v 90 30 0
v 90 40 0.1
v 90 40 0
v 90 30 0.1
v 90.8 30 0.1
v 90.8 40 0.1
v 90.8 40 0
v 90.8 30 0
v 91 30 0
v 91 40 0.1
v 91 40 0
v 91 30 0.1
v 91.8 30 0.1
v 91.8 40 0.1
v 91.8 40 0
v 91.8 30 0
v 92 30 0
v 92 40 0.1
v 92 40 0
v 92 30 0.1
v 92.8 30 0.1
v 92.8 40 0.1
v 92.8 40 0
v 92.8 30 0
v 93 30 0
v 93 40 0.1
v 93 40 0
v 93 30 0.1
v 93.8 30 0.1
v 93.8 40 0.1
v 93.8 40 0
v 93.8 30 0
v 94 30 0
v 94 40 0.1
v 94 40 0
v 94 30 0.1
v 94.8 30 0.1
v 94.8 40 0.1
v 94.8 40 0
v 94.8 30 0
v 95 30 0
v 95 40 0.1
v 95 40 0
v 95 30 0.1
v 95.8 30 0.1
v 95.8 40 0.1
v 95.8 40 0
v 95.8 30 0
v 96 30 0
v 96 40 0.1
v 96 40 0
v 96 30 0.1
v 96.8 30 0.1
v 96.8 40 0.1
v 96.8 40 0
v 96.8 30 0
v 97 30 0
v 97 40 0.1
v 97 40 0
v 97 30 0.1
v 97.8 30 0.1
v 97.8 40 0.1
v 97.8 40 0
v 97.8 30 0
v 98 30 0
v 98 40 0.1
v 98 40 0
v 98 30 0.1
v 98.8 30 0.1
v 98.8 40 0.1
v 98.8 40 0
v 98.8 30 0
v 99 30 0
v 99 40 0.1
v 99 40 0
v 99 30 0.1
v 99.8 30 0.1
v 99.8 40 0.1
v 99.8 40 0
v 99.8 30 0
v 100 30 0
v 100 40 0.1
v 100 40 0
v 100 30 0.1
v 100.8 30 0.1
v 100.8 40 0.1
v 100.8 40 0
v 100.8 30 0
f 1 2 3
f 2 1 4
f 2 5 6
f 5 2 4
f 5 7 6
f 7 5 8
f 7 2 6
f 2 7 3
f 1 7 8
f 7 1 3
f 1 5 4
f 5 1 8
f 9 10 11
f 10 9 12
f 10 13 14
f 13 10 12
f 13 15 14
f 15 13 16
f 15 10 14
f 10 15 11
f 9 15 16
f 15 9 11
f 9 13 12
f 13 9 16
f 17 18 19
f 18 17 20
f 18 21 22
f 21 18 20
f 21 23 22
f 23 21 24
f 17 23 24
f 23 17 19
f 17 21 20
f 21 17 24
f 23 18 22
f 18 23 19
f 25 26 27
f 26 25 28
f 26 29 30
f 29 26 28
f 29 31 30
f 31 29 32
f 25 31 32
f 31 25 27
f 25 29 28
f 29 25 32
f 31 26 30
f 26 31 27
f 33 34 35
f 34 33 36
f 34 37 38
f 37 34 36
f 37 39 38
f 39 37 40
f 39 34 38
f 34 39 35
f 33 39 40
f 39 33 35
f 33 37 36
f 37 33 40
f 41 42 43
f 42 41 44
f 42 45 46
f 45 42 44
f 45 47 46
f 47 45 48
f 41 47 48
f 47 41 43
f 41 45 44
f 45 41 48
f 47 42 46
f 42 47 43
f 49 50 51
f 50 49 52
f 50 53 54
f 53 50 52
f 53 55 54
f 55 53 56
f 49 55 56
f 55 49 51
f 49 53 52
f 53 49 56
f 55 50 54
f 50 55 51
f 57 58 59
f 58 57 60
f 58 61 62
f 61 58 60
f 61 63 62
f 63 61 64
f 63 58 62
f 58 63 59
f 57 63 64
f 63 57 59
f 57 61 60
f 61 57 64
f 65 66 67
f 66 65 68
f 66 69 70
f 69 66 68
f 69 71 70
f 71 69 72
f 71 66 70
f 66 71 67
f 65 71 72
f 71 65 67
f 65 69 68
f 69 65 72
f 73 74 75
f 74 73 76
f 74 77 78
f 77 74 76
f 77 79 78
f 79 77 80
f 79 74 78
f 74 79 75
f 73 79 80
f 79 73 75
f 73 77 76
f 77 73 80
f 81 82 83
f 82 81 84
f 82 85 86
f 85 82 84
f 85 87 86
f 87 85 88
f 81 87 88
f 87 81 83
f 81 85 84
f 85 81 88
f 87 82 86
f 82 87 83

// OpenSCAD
translate([10+80,10+20,0])
        for (i = [0 : 10]){
            translate([i,0,0])
                cube(size = [0.8,10,0.1]);
    }
